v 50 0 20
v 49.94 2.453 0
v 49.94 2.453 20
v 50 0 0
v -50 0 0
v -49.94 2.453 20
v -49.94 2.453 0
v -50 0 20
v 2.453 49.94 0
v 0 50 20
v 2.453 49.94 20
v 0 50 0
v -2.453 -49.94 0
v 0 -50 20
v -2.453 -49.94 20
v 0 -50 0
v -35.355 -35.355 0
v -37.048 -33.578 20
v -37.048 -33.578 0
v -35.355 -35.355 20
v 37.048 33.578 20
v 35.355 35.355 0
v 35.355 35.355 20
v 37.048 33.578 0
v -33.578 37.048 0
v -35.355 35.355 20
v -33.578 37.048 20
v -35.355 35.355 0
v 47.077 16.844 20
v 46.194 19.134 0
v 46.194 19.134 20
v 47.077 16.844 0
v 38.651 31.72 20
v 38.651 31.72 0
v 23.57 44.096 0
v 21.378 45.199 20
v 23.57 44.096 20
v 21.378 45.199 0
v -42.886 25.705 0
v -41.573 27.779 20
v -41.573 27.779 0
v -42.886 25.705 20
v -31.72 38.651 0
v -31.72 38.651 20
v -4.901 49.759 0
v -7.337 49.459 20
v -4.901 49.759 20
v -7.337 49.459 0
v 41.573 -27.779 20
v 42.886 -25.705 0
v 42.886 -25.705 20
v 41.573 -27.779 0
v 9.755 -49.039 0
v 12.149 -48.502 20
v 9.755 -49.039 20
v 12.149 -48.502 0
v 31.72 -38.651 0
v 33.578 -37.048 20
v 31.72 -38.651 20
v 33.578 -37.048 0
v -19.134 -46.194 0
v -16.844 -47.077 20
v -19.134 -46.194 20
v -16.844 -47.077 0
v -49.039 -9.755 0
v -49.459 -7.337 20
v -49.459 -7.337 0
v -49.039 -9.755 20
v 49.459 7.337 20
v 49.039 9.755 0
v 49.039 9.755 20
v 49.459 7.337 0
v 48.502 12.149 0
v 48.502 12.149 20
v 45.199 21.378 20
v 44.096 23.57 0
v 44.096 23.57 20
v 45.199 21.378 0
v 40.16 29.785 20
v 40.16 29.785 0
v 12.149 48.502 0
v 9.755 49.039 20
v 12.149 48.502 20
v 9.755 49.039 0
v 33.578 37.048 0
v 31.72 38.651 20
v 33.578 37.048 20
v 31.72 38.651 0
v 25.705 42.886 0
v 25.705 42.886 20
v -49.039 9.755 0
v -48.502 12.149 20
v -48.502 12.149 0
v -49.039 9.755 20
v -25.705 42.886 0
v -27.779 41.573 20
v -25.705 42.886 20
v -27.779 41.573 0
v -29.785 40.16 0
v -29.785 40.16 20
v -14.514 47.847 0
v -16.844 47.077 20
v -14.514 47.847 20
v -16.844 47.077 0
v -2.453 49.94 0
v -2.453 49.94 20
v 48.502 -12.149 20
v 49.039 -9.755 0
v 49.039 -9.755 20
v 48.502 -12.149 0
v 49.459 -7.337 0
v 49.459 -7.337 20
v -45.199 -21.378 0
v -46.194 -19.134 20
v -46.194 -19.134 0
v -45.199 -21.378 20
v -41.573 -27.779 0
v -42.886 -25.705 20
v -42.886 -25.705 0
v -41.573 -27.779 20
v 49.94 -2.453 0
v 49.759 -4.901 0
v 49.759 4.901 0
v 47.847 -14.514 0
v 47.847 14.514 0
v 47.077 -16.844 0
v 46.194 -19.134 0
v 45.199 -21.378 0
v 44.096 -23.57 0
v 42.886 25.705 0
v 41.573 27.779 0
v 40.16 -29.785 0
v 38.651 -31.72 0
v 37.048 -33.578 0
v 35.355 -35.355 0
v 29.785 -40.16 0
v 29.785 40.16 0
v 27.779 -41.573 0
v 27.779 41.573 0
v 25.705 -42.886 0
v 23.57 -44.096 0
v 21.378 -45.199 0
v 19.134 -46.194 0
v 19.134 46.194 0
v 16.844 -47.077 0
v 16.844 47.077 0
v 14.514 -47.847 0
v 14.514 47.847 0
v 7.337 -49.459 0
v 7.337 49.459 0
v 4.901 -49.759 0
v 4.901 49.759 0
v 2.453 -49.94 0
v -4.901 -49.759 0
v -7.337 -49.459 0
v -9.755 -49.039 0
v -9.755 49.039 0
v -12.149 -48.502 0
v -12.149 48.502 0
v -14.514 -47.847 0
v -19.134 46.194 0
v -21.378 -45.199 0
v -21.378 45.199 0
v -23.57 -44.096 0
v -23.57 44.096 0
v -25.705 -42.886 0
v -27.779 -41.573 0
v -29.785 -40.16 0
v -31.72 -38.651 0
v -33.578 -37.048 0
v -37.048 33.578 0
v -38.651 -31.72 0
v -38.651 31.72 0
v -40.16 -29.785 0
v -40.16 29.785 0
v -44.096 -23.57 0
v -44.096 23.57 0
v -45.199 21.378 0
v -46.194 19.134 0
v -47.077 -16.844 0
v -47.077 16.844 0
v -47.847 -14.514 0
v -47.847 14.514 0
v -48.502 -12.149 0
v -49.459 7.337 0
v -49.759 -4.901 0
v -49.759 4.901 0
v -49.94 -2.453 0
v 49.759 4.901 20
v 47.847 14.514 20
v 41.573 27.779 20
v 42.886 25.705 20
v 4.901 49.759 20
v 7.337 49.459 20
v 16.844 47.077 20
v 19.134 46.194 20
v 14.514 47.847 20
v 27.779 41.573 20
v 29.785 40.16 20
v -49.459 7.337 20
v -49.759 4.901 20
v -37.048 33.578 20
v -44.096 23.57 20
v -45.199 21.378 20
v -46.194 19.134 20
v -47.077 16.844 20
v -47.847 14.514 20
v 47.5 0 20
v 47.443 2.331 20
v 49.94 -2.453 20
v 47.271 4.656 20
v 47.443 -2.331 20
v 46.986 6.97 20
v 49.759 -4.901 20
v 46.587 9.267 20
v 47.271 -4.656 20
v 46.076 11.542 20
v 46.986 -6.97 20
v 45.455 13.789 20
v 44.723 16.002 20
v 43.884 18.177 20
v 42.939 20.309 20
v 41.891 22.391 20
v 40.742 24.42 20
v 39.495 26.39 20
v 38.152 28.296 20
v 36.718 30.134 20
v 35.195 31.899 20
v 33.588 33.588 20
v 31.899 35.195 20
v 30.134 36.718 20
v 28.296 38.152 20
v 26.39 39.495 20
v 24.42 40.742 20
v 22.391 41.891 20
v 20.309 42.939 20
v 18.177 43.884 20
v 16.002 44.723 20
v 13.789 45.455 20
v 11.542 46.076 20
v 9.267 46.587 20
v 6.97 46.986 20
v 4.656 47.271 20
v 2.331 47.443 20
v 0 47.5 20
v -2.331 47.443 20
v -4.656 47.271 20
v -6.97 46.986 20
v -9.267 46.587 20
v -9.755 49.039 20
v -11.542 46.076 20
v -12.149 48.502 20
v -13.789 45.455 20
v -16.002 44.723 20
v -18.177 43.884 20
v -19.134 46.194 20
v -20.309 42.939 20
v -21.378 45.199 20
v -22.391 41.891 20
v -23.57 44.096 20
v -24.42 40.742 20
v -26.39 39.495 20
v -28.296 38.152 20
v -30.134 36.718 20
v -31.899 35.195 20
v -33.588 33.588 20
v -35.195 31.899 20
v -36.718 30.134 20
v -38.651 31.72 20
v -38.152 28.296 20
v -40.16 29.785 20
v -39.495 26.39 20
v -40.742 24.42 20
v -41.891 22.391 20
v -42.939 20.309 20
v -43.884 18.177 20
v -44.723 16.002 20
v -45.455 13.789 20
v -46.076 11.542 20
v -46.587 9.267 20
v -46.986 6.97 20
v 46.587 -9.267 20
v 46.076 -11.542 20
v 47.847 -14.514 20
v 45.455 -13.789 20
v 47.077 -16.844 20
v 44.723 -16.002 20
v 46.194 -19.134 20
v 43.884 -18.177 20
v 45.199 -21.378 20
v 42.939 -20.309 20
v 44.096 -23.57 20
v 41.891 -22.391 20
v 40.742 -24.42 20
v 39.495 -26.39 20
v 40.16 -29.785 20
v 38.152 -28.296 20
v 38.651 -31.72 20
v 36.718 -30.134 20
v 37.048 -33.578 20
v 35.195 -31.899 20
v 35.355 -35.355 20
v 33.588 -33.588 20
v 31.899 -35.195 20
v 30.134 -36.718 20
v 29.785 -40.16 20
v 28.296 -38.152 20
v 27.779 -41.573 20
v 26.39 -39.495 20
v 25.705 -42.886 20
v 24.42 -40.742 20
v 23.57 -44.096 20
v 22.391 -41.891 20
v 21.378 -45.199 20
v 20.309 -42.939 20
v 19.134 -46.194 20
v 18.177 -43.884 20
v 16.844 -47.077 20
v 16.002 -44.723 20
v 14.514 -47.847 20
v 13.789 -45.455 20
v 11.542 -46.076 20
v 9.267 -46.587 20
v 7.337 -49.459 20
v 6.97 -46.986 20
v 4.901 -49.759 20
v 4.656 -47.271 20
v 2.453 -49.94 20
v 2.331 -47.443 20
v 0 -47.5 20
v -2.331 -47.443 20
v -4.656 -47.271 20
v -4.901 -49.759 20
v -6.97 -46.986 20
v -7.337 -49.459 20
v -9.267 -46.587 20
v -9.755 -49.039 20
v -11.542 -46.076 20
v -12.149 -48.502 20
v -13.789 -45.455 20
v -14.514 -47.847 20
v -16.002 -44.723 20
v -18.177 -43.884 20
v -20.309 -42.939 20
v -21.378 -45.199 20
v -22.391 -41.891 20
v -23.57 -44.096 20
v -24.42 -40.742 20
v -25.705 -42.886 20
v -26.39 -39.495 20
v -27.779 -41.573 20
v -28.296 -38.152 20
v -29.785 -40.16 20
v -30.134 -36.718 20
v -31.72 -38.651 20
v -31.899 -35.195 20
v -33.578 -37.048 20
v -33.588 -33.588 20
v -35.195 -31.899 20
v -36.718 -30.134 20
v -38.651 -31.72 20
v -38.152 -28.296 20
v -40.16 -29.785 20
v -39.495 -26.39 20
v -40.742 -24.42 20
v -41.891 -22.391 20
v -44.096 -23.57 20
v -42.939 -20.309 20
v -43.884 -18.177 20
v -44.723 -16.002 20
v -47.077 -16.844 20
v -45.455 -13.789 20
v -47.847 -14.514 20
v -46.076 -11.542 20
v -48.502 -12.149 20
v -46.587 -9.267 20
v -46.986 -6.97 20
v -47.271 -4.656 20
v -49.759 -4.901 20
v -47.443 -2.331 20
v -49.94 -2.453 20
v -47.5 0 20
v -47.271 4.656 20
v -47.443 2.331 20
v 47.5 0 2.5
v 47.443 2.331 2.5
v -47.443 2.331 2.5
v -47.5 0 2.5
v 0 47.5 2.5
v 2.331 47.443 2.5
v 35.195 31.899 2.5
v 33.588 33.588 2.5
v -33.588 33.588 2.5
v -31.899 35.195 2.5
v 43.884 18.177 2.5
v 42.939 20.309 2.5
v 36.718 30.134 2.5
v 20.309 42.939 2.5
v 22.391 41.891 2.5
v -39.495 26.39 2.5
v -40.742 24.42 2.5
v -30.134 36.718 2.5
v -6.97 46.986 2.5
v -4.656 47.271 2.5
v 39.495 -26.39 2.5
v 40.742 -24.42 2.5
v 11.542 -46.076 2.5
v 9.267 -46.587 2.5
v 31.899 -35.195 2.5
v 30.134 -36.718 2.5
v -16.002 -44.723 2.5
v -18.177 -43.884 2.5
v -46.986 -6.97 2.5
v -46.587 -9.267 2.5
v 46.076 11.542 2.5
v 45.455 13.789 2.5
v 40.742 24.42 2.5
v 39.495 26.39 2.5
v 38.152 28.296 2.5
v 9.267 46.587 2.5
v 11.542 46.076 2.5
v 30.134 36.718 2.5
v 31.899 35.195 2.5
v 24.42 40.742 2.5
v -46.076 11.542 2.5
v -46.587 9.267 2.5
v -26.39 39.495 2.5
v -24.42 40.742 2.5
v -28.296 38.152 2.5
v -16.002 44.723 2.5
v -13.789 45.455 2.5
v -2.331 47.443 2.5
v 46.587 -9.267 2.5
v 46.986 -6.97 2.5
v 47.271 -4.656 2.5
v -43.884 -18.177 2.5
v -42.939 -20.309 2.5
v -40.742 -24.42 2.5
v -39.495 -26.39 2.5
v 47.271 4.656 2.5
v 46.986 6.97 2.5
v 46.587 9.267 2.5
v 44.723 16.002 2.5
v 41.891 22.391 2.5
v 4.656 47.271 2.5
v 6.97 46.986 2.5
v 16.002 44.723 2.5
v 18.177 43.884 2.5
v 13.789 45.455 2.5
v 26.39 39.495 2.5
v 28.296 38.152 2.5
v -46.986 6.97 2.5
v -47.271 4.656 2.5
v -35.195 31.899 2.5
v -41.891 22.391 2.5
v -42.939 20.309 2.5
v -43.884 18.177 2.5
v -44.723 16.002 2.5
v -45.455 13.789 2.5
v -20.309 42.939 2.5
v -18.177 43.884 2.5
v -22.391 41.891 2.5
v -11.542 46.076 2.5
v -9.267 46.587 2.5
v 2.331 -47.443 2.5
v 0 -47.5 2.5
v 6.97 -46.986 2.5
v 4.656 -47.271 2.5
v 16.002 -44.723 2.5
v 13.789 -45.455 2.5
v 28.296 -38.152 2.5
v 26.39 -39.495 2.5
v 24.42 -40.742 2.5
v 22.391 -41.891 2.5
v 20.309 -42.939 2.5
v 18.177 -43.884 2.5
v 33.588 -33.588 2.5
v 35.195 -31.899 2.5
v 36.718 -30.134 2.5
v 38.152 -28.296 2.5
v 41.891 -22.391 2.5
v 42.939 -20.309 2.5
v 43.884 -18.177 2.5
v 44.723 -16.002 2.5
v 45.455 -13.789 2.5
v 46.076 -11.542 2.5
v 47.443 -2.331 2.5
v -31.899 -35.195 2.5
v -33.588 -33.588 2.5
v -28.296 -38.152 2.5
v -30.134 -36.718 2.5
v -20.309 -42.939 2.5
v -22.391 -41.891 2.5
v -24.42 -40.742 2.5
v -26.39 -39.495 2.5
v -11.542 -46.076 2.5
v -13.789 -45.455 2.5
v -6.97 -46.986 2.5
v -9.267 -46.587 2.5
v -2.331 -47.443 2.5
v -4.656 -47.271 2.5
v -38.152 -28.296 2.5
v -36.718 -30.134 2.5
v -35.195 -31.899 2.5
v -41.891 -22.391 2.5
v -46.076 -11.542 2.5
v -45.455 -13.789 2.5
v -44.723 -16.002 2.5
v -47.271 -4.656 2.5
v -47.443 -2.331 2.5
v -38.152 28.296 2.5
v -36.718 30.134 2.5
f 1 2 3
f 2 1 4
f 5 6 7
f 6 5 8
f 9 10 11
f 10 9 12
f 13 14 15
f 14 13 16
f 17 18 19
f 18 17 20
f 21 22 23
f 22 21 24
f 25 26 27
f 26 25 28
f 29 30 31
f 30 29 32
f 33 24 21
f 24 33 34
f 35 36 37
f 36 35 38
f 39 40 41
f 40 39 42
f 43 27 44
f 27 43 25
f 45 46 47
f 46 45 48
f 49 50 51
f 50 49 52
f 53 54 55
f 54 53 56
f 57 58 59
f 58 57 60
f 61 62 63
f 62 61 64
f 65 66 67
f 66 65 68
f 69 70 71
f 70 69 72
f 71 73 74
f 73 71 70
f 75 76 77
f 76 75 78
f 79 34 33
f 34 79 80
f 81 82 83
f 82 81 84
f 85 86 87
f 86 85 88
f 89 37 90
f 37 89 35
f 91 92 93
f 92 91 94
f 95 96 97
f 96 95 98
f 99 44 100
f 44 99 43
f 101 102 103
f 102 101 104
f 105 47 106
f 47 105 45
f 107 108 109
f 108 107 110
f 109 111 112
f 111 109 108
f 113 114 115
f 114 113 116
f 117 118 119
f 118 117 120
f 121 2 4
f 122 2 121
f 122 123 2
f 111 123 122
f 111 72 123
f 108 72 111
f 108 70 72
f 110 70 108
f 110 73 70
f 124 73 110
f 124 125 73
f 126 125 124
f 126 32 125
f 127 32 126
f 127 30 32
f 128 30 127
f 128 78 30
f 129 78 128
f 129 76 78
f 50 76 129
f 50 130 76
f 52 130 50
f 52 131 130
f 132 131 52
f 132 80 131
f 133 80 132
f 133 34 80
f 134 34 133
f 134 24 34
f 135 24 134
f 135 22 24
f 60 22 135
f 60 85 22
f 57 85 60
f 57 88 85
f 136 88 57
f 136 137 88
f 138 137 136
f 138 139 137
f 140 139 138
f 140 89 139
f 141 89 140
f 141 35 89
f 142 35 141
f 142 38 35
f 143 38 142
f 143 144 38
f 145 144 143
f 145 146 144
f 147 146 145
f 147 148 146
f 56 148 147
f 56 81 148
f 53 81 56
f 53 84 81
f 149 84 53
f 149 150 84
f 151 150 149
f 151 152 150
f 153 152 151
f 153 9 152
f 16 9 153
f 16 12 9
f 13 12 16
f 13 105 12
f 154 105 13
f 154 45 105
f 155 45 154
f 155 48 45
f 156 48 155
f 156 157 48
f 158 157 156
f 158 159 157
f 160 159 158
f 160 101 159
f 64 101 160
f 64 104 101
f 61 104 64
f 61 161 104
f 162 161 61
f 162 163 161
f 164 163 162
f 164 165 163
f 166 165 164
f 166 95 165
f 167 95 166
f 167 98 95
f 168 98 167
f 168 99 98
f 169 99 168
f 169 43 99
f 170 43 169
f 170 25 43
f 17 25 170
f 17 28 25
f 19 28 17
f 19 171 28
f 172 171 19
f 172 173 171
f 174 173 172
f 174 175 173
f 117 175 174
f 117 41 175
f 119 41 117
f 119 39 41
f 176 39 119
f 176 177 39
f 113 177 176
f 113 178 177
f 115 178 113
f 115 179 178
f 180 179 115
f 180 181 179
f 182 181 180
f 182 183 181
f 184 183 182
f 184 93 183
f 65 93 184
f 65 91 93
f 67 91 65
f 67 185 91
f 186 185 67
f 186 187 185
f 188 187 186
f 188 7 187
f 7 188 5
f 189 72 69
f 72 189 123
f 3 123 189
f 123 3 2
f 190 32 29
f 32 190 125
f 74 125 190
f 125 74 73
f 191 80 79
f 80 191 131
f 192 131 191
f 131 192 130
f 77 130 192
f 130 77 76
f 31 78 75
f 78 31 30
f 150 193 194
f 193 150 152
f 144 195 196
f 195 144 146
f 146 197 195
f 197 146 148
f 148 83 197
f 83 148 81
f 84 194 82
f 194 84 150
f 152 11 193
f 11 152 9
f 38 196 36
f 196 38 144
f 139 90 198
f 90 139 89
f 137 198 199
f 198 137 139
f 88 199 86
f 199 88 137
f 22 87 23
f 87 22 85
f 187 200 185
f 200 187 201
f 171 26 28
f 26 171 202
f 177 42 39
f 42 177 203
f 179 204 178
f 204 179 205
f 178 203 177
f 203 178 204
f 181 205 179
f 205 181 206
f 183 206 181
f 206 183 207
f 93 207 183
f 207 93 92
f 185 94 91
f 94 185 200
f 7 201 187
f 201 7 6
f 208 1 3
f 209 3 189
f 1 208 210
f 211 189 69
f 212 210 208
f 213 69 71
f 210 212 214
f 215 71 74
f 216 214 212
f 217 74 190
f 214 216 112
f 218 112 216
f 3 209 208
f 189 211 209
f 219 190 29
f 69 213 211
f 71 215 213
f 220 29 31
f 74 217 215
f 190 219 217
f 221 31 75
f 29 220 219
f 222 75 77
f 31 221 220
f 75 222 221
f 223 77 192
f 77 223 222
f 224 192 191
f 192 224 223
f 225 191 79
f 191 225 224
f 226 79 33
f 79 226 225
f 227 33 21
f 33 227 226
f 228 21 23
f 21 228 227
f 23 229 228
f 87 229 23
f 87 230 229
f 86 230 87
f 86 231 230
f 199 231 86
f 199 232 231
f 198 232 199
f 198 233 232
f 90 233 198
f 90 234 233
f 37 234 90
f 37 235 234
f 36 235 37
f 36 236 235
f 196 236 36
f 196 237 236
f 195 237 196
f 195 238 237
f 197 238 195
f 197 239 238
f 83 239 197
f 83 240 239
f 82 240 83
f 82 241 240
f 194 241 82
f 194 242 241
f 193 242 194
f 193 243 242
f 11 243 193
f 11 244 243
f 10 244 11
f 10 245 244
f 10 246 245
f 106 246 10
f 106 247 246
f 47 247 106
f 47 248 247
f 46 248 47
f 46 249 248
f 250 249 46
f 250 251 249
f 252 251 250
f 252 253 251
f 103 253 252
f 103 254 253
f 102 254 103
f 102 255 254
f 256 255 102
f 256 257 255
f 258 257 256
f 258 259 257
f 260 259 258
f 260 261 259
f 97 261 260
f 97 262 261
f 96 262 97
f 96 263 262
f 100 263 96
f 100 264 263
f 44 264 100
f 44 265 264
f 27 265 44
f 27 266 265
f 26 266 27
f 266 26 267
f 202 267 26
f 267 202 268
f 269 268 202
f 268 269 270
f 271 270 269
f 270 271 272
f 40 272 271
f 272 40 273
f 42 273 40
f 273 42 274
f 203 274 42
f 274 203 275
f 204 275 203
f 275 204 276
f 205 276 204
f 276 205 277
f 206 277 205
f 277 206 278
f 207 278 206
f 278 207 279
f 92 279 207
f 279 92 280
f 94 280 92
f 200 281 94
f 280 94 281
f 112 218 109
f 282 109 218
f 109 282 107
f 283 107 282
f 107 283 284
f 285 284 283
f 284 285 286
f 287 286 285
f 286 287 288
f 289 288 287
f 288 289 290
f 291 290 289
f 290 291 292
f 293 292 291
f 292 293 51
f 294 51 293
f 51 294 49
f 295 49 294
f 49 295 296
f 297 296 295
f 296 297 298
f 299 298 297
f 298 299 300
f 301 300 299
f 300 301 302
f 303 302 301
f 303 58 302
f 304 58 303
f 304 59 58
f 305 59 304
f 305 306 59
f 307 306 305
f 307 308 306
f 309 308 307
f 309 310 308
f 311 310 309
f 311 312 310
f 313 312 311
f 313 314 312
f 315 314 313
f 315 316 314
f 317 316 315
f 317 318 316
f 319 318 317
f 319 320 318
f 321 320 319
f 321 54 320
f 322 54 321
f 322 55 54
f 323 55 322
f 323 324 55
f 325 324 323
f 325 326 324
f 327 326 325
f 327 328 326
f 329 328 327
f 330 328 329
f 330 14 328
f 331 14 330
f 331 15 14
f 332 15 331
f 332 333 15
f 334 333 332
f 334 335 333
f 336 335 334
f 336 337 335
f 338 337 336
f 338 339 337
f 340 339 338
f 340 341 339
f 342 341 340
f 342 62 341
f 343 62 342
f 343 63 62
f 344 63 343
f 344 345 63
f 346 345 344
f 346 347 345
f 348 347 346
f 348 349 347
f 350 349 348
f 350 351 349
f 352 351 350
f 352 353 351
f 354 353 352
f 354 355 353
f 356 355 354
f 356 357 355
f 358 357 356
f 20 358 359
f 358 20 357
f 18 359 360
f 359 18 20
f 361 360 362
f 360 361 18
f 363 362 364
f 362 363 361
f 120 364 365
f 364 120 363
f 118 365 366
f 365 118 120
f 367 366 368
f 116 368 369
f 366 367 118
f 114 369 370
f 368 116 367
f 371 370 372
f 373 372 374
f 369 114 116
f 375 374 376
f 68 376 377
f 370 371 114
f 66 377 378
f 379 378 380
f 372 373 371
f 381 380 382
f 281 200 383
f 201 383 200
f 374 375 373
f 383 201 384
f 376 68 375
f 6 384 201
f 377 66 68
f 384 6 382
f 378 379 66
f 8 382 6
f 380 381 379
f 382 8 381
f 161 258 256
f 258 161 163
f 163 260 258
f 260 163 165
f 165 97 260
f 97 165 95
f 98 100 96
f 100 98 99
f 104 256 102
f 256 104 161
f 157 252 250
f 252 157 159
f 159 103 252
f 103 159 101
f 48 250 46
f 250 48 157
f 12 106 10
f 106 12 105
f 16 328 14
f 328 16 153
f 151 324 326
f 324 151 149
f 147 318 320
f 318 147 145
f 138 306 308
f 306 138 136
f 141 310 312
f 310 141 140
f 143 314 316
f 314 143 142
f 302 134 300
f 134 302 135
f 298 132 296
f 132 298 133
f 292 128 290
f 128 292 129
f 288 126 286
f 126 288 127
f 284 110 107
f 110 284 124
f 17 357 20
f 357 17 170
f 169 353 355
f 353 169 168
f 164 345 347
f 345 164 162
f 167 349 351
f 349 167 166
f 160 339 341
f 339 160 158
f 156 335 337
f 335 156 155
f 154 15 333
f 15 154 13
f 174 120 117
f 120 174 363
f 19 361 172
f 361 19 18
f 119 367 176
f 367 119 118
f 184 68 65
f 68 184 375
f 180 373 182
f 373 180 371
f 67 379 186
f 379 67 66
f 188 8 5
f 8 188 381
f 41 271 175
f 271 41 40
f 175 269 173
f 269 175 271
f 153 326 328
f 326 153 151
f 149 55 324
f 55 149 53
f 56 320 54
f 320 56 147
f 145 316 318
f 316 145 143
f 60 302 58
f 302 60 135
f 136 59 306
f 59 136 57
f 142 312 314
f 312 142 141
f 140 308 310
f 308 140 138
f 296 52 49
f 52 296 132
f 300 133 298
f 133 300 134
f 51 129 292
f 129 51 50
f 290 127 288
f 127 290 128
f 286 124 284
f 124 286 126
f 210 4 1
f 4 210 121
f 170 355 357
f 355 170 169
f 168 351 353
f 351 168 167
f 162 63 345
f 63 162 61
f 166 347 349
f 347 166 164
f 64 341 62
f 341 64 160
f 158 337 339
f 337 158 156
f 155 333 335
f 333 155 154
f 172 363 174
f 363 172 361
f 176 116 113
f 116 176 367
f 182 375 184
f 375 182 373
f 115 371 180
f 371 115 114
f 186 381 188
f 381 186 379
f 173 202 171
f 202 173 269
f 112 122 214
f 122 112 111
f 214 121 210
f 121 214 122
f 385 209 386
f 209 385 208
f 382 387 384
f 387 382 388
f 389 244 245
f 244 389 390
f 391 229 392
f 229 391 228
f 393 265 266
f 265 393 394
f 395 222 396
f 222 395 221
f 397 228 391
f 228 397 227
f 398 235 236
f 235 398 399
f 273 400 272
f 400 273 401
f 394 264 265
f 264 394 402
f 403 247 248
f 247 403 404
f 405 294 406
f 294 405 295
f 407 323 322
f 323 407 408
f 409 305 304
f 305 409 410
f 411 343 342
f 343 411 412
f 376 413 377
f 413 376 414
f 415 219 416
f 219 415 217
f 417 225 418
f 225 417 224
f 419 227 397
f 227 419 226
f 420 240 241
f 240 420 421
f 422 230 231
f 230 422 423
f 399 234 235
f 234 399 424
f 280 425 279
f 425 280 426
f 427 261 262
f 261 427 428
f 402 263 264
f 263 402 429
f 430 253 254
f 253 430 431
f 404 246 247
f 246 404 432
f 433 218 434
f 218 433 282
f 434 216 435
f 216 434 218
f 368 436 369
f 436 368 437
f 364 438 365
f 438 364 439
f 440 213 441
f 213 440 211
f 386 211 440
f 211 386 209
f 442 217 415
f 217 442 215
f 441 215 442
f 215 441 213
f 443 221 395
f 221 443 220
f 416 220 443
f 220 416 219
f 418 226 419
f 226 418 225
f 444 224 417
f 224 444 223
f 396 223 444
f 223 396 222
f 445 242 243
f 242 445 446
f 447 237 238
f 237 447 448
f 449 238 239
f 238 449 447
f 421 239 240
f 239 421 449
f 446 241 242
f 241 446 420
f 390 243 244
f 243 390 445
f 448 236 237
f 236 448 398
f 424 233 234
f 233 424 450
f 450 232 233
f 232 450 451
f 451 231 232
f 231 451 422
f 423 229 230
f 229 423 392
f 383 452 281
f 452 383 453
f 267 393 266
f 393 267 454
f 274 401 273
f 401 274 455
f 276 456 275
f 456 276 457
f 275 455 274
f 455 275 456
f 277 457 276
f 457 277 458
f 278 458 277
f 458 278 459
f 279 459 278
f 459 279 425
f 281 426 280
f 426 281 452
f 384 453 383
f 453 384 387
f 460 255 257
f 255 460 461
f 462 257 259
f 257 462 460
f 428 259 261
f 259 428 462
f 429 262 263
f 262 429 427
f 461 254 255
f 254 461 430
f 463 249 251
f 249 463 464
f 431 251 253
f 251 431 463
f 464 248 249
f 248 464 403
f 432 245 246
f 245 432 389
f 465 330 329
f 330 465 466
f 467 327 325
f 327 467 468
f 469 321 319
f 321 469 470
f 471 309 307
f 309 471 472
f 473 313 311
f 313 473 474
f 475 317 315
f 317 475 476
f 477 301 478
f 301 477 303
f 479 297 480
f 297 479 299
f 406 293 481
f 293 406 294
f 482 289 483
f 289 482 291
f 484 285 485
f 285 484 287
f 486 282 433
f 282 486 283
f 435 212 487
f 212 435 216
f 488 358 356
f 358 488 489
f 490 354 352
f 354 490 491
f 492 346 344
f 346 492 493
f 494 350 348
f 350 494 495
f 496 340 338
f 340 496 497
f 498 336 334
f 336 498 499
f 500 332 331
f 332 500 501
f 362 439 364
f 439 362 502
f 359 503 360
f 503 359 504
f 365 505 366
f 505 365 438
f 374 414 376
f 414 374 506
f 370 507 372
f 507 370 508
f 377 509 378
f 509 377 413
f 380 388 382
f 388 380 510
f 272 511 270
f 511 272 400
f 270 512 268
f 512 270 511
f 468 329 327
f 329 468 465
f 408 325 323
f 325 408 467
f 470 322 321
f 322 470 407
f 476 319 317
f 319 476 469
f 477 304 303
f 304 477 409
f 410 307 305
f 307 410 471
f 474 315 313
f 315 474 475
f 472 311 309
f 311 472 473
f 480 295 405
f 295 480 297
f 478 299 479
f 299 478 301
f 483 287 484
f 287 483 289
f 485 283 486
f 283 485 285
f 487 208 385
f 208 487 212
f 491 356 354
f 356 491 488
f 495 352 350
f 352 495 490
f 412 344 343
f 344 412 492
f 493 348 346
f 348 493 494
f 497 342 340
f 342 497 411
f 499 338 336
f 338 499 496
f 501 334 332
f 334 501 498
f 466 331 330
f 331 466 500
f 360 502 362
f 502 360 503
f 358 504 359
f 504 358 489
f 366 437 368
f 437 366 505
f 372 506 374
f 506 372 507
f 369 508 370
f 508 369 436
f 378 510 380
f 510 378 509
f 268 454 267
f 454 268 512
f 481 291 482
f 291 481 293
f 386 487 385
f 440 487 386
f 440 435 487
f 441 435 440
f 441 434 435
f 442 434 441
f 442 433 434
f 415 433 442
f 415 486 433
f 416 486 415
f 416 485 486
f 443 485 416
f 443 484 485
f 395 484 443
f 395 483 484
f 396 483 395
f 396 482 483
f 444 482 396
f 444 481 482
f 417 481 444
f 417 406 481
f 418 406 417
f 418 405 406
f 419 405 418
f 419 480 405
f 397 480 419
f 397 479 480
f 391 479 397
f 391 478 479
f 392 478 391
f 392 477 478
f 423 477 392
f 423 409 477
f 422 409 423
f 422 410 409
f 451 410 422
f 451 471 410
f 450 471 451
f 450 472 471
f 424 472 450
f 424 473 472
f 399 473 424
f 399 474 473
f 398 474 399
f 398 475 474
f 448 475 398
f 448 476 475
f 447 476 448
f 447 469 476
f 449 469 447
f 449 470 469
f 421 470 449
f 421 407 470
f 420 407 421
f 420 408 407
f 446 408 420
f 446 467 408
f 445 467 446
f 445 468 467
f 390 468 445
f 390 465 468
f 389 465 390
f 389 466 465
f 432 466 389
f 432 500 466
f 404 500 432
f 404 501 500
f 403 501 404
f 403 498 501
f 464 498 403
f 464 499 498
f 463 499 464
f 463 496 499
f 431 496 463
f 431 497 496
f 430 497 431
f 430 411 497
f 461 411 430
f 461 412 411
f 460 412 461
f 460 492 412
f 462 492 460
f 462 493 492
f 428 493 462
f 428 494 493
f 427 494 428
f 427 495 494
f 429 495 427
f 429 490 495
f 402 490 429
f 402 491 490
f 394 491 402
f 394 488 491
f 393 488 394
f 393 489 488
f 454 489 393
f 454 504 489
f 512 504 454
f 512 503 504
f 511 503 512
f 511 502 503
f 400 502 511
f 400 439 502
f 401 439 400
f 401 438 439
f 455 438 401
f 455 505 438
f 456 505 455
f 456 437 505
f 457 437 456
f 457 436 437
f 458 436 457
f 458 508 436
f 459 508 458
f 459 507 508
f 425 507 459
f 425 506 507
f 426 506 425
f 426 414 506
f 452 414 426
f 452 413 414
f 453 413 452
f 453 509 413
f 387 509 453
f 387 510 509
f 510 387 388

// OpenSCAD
$fn = 128;

outerHeight = 20;
innerHeight = 2.5;
border = 2.5;
radius = 50;

difference() {
    cylinder(h = outerHeight, r = radius);
    cylinder(h = outerHeight, r = radius - border);
};

cylinder(h = innerHeight, r = radius - border);
